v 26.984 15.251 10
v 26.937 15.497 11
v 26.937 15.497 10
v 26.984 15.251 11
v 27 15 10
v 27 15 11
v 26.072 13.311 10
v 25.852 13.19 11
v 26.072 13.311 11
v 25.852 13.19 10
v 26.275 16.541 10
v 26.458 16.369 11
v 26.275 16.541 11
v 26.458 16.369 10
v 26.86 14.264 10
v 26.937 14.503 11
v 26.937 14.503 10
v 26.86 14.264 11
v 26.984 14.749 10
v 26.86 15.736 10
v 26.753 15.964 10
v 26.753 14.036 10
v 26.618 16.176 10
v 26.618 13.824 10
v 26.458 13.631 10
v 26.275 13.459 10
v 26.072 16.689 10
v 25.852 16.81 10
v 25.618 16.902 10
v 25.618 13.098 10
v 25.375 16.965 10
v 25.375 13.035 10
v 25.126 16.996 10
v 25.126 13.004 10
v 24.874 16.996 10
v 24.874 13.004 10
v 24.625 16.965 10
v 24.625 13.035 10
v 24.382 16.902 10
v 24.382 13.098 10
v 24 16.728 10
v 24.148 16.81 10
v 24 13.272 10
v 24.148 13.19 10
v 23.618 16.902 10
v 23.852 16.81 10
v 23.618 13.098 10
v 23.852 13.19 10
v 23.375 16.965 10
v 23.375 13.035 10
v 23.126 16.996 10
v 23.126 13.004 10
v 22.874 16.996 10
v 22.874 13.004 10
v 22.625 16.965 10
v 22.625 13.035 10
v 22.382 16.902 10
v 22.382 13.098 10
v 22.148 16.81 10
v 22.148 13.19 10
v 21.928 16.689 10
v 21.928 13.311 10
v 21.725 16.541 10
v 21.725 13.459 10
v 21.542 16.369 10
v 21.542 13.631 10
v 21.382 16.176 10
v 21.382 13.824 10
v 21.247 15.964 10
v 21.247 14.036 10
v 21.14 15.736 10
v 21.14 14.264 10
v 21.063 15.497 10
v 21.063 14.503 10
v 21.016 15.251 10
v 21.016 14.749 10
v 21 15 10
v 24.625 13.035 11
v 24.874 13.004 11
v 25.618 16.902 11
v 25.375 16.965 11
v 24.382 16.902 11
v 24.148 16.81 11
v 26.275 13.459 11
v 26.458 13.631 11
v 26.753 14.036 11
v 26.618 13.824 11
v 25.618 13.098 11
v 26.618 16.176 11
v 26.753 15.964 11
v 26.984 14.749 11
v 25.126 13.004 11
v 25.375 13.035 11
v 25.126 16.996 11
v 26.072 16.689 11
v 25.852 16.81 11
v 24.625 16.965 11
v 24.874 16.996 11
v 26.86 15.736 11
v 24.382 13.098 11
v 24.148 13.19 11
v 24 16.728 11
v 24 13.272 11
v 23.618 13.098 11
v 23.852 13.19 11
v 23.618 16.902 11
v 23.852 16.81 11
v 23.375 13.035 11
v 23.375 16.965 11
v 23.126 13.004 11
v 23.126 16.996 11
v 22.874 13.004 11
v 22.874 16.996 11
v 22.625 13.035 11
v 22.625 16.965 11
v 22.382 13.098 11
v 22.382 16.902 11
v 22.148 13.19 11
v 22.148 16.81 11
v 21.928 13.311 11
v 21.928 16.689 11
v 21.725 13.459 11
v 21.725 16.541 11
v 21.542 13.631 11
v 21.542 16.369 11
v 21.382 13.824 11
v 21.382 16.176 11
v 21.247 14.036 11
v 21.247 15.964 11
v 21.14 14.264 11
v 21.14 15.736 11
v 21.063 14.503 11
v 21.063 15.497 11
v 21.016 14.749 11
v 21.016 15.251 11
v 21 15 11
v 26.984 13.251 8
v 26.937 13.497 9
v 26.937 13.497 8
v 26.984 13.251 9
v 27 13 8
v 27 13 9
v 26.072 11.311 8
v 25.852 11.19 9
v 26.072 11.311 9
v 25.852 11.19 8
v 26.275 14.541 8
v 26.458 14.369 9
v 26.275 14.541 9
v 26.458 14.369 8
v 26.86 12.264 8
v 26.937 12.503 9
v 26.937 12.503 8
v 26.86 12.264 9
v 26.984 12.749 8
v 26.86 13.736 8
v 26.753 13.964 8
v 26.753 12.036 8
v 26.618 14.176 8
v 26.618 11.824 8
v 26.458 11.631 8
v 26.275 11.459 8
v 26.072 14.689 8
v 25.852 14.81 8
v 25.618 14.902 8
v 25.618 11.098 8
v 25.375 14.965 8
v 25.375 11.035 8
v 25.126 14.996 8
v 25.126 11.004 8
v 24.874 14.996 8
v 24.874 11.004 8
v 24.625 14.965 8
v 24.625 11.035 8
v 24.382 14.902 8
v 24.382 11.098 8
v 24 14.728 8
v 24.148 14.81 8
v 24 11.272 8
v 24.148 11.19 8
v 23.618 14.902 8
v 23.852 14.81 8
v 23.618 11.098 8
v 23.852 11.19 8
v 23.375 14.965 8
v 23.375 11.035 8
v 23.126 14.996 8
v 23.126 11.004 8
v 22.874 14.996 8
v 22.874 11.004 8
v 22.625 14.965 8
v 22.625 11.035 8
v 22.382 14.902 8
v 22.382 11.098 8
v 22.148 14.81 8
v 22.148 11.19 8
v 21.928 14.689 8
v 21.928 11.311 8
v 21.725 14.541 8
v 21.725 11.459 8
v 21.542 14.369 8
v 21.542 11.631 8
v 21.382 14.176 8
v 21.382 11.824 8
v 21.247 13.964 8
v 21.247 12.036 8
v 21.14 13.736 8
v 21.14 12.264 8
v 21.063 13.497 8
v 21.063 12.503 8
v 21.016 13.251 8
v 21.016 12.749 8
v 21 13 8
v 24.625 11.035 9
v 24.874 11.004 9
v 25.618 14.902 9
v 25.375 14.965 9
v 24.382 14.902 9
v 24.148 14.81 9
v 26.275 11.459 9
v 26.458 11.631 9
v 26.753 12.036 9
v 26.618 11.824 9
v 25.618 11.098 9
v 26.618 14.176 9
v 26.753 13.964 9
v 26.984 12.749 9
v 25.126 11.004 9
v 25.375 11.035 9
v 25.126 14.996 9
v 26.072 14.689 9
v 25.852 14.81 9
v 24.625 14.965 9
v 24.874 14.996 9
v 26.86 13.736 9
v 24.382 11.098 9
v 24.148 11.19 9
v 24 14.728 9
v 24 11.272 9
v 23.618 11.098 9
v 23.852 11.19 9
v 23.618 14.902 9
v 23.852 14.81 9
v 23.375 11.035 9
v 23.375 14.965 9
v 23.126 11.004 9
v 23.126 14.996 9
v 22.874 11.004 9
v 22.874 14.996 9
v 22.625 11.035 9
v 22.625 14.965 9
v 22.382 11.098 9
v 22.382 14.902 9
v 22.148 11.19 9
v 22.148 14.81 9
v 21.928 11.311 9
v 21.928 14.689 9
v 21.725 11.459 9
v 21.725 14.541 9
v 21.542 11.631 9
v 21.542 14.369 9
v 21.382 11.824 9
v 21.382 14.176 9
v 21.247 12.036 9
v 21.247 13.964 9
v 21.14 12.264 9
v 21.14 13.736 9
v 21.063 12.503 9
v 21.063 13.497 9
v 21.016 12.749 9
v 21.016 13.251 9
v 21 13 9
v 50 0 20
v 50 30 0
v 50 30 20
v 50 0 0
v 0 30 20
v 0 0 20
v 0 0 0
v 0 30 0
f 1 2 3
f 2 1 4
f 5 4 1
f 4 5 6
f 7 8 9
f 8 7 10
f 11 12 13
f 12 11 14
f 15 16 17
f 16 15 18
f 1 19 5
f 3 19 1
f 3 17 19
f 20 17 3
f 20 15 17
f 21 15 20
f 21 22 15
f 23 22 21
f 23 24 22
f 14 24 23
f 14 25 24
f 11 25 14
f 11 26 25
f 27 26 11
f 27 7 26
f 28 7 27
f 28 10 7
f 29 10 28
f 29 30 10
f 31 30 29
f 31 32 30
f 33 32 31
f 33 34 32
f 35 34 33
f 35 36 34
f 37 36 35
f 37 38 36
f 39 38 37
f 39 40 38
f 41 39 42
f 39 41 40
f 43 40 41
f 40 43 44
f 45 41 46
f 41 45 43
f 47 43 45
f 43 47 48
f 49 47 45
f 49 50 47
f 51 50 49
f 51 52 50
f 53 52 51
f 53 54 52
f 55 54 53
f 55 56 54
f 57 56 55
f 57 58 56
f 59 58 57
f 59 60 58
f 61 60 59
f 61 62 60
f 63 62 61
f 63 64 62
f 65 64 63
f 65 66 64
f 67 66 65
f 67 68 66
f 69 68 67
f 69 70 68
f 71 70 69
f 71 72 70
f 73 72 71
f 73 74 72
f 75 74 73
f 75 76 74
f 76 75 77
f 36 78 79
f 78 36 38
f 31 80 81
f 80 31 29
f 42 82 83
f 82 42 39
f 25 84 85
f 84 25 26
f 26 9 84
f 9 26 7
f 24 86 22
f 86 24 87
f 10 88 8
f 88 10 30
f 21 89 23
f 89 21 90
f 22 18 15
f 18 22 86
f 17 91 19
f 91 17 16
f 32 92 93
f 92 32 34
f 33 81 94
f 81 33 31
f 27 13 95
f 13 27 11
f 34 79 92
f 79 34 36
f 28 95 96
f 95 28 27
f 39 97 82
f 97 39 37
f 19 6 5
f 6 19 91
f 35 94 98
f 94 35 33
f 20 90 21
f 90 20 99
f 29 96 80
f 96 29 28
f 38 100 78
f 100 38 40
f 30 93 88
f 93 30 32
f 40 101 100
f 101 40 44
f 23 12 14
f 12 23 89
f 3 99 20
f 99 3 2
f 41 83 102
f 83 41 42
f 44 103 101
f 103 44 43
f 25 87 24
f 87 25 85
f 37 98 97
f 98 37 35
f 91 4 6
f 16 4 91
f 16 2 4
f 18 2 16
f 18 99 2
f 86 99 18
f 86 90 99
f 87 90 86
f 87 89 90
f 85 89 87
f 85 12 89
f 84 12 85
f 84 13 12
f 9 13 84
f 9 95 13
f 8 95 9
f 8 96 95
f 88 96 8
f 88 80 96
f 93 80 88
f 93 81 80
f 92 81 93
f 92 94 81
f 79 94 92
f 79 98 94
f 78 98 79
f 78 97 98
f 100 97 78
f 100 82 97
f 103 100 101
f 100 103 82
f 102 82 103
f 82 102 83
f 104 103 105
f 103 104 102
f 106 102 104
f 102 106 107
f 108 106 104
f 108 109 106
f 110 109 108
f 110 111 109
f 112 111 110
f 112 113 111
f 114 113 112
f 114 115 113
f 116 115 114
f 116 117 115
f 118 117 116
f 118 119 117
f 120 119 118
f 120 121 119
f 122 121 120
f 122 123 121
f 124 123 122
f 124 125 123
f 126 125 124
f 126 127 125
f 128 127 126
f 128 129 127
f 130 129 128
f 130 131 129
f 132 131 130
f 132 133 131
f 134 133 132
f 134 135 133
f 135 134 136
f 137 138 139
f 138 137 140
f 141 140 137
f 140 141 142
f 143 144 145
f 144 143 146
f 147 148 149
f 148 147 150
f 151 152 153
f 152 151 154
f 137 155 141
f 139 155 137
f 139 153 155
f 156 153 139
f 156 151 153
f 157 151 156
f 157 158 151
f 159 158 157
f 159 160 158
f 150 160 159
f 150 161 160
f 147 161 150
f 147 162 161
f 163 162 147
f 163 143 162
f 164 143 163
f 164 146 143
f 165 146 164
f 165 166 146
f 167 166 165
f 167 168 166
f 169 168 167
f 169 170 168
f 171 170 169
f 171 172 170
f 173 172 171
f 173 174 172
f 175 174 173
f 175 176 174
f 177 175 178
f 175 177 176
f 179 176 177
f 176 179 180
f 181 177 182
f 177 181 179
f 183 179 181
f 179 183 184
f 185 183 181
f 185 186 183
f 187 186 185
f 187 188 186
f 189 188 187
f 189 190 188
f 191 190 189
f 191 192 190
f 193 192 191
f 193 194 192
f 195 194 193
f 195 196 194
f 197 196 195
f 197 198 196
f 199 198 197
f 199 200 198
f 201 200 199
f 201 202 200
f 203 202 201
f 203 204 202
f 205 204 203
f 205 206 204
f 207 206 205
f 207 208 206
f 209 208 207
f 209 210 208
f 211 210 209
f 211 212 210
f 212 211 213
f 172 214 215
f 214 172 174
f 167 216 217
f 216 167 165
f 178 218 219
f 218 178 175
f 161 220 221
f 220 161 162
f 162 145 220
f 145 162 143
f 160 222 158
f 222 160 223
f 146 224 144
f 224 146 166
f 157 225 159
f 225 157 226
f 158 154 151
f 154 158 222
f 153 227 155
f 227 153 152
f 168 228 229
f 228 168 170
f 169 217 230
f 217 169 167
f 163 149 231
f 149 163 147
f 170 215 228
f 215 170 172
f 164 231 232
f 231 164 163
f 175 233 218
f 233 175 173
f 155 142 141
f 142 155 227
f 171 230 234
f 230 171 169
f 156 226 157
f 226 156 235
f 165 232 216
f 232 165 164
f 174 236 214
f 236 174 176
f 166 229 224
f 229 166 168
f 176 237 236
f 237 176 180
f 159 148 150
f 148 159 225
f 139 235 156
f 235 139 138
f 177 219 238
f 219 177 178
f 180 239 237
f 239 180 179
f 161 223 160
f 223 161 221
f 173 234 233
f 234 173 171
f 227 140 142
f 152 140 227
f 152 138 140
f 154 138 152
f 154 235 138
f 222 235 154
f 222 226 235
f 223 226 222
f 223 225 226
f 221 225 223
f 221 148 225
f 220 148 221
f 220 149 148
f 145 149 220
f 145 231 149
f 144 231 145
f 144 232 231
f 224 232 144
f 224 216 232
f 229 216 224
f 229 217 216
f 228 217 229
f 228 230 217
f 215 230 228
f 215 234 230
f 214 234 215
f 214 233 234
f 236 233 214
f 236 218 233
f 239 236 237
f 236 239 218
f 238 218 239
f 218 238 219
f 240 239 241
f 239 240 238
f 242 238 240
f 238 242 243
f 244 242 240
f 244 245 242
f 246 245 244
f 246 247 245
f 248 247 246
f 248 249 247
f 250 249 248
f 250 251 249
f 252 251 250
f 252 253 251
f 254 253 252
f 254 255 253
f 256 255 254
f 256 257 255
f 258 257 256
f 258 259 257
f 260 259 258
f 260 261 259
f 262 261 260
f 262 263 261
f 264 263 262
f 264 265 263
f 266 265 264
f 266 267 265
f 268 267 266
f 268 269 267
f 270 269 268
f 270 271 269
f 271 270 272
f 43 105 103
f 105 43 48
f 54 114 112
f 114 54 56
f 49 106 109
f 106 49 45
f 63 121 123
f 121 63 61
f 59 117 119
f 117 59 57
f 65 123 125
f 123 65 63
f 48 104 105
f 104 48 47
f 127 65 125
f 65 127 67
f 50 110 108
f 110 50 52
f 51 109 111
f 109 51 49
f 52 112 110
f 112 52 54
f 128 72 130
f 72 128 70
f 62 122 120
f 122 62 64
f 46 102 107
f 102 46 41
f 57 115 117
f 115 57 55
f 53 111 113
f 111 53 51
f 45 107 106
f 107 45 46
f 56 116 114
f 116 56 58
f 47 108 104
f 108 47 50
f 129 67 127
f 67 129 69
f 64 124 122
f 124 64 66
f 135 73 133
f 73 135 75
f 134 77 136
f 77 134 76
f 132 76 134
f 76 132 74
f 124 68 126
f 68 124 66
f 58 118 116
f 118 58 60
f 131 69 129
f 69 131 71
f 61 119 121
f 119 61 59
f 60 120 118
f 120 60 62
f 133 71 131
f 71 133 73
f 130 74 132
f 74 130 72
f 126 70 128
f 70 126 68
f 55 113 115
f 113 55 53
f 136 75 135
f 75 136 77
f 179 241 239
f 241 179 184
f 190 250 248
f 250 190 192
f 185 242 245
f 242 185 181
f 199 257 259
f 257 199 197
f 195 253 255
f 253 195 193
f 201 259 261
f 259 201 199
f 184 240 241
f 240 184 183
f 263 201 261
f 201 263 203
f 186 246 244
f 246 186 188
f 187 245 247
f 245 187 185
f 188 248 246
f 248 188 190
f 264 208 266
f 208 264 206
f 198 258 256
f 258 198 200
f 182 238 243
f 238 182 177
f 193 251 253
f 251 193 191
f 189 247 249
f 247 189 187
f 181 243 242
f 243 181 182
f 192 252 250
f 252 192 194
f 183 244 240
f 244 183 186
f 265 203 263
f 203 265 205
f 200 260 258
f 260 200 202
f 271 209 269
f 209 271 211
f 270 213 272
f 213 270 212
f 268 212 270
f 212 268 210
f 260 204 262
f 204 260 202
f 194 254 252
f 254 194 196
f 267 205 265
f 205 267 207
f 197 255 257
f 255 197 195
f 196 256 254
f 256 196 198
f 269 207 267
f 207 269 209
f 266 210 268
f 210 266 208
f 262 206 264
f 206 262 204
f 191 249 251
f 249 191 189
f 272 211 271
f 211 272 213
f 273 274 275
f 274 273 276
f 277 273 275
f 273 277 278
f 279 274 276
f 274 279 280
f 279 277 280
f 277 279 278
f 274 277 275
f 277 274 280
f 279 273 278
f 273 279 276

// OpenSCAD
module box_with_holes(width, depth, height, hole_diameter, hole_radius) {
  difference() {
    cube([width, depth, height]);
    for (i = [0:1]) {
      for (j = [0:1]) {
        translate([width/2 - (i * hole_radius), depth/2 - (j * hole_radius), height/2 - (j * hole_radius)]) {
          cylinder(h = 1, r = hole_radius, $fn=50);
        }
      }
    }
  }
}

box_with_holes(width = 50, depth = 30, height = 20, hole_diameter = 10, hole_radius = 2);
